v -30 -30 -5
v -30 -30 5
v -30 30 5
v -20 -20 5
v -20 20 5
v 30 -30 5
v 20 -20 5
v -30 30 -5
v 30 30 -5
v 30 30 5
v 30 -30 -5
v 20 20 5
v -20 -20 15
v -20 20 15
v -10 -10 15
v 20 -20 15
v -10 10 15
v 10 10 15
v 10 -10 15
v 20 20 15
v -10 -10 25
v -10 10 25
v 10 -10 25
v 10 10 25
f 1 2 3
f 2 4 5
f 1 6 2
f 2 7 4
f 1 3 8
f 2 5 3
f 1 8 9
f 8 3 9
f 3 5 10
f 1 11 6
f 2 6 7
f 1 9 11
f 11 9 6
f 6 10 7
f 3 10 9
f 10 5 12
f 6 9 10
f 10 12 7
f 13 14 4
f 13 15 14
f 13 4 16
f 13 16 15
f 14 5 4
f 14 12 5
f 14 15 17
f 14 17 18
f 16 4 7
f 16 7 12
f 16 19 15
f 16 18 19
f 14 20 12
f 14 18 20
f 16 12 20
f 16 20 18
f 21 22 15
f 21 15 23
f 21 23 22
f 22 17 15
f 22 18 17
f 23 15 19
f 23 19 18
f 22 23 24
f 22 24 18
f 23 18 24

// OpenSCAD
// 3段の階段状ピラミッド

// 1段目: 60mm × 60mm × 10mm
translate([0, 0, 0])
    cube([60, 60, 10], center = true);

// 2段目: 40mm × 40mm × 10mm
translate([0, 0, 10])
    cube([40, 40, 10], center = true);

// 3段目: 20mm × 20mm × 10mm
translate([0, 0, 20])
    cube([20, 20, 10], center = true);
